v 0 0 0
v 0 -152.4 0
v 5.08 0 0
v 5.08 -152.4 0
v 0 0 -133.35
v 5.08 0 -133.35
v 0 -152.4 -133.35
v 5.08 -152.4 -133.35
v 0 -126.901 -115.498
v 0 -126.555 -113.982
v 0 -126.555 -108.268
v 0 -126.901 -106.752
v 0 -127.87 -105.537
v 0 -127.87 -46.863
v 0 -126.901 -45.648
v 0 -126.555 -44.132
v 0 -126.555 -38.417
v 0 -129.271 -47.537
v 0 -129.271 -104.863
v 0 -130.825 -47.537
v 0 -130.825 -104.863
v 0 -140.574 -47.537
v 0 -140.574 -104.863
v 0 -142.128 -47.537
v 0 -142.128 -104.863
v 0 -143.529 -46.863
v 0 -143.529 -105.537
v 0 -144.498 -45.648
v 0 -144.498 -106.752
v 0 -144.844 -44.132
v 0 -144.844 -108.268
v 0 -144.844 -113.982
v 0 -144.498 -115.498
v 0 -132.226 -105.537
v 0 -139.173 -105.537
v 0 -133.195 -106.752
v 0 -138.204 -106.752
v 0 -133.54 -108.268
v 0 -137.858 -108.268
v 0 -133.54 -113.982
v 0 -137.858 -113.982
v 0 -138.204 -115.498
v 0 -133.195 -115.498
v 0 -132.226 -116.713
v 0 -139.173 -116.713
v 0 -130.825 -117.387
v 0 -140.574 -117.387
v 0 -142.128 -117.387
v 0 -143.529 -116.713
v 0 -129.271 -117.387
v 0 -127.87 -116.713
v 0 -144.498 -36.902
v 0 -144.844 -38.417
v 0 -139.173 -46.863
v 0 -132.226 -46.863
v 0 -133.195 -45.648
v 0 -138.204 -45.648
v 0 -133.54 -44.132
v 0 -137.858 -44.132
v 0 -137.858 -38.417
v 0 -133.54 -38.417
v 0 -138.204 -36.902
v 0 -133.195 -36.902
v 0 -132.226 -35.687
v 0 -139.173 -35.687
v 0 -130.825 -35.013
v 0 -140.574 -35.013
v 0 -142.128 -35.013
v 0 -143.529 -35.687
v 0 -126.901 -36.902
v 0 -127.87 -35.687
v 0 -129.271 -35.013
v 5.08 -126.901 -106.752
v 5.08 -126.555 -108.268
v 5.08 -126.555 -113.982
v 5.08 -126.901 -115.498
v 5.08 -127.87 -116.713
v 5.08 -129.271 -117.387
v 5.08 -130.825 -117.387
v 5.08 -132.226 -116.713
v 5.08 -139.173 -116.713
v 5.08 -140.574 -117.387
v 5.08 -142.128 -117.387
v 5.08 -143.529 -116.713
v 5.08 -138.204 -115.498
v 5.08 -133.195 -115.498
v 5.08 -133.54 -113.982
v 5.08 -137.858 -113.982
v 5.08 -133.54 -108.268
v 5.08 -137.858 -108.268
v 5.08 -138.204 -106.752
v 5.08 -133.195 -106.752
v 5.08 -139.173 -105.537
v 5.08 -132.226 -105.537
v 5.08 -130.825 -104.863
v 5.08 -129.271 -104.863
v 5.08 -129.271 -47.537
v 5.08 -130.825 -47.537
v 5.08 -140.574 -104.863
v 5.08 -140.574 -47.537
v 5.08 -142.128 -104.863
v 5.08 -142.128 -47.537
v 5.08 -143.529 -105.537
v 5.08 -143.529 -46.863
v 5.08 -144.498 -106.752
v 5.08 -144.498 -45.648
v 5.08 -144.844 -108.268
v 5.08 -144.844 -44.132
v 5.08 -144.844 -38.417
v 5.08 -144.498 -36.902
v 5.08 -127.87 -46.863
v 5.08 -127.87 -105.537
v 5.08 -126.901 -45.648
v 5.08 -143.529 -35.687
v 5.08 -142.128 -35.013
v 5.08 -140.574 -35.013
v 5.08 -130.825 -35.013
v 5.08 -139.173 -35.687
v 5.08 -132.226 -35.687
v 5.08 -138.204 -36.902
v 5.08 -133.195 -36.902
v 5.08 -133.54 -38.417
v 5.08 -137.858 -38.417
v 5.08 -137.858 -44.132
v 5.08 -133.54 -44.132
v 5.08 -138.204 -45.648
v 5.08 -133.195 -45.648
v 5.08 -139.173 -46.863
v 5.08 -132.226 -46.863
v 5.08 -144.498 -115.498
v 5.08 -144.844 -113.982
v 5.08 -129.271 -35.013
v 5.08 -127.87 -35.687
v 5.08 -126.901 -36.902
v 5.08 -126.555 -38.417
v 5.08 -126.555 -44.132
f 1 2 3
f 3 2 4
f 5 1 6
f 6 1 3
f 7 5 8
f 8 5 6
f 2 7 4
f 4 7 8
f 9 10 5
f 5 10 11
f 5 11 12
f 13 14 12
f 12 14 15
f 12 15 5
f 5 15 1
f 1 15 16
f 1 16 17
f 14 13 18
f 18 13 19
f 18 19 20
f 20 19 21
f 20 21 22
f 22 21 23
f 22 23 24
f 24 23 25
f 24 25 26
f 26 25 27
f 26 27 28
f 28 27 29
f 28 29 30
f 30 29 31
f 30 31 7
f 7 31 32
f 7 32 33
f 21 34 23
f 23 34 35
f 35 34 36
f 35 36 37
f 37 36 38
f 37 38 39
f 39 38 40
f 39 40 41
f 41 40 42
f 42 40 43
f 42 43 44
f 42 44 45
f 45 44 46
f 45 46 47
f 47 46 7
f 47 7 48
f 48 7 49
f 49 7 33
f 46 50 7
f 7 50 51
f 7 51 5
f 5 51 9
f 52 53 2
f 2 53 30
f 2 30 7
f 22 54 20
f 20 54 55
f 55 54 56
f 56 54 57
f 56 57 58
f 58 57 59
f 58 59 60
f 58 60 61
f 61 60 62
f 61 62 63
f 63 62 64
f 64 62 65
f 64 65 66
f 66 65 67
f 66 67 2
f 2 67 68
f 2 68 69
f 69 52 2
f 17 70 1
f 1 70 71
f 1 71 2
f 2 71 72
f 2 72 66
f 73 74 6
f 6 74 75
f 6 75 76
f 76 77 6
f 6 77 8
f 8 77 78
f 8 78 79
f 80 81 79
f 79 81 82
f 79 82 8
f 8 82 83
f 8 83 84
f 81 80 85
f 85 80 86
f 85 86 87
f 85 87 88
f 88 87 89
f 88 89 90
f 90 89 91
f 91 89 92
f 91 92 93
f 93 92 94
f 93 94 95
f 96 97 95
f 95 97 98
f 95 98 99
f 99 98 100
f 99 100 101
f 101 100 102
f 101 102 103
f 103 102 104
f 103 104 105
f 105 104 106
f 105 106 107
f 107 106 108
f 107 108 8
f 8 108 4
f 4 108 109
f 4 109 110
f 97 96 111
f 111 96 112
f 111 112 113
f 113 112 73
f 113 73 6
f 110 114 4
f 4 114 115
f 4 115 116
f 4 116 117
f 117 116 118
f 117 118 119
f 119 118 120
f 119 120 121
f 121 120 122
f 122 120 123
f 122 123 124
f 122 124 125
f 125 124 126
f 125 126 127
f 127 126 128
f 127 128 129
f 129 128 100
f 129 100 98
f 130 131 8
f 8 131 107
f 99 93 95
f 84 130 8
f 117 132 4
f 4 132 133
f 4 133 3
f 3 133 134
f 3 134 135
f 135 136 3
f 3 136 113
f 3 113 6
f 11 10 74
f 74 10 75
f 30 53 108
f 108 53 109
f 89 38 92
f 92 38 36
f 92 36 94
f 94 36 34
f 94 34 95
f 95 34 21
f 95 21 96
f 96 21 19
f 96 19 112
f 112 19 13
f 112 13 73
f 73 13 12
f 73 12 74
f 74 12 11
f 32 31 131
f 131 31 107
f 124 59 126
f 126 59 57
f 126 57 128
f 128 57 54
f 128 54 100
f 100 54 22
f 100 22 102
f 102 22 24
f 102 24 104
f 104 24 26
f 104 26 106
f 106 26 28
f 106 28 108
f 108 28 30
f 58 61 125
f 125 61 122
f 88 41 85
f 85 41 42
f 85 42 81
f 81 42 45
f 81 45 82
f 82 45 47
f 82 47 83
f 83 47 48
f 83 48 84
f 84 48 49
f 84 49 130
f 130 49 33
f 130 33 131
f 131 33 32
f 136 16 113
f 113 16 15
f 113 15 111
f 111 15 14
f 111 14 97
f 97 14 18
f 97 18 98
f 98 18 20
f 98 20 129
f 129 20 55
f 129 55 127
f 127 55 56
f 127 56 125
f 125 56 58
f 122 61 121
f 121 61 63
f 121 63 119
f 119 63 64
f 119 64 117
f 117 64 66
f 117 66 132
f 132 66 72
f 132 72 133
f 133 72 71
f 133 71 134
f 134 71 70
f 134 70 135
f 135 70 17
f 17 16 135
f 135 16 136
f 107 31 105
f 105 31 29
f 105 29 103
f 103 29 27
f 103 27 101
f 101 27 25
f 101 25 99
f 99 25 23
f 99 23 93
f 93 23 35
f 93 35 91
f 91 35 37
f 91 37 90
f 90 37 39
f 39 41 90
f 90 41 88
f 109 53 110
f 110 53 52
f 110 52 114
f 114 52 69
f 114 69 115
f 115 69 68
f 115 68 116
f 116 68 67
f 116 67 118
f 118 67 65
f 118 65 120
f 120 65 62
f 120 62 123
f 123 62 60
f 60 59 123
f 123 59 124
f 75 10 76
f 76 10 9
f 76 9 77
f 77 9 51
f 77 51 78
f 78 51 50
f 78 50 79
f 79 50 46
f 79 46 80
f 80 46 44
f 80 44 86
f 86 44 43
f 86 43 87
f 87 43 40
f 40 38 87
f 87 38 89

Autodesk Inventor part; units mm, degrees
ref_plane "YZ Plane" through (0, 0, 0) normal (1, 0, 0) x (0, 1, 0)
ref_plane "XZ Plane" through (0, 0, 0) normal (0, 1, 0) x (-1, 0, 0)
ref_plane "XY Plane" through (0, 0, 0) normal (0, 0, 1) x (1, 0, 0)
sketch "Sketch1" plane through (0, 0, 0) normal (0, 0, 1) x (1, 0, 0)
  point P0 (0, 0)
sketch "Sketch2" plane through (0, 0, 0) normal (1, 0, 0) x (0, 1, 0)
  line L0 (0, 0) -> (-152.4, 0)
  line L1 (-152.4, 0) -> (-152.4, -133.35)
  line L2 (-152.4, -133.35) -> (0, -133.35)
  line L3 (0, -133.35) -> (0, 0)
  dimension "d0" = 152.4
  dimension "d1" = 133.35
extrude "Extrusion1" add sketch "Sketch2" along normal blind 5.08
sketch "Sketch6" plane through (5.08, 0, 0) normal (1, 0, 0) x (0, 0, -1)
  line L0 (0, -152.4) -> (133.35, -152.4) projected
  line L1 (133.35, -152.4) -> (133.35, 0) projected
  line L2 (0, 0) -> (0, -152.4) projected
  line L3 (41.275, -130.048) -> (47.625, -130.048)
  line L4 (47.625, -130.048) -> (41.275, -130.048)
  line L5 (41.275, -130.048) -> (34.925, -130.048)
  line L6 (34.925, -130.048) -> (47.625, -130.048) construction
  line L7 (38.4175, -133.5405) -> (44.1325, -133.5405)
  line L8 (44.1325, -126.5555) -> (38.4175, -126.5555)
  arc A0 (38.4175, -126.5555) -> (38.4175, -133.5405) centre (38.4175, -130.048) ccw
  arc A1 (44.1325, -133.5405) -> (44.1325, -126.5555) centre (44.1325, -130.048) ccw
  line L9 (111.125, -130.048) -> (117.475, -130.048)
  line L10 (117.475, -130.048) -> (111.125, -130.048)
  line L11 (111.125, -130.048) -> (104.775, -130.048)
  line L12 (104.775, -130.048) -> (117.475, -130.048) construction
  line L13 (108.2675, -133.5405) -> (113.9825, -133.5405)
  line L14 (113.9825, -126.5555) -> (108.2675, -126.5555)
  arc A2 (108.2675, -126.5555) -> (108.2675, -133.5405) centre (108.2675, -130.048) ccw
  arc A3 (113.9825, -133.5405) -> (113.9825, -126.5555) centre (113.9825, -130.048) ccw
  line L15 (41.275, -141.351) -> (47.625, -141.351)
  line L16 (47.625, -141.351) -> (41.275, -141.351)
  line L17 (41.275, -141.351) -> (34.925, -141.351)
  line L18 (34.925, -141.351) -> (47.625, -141.351) construction
  line L19 (38.4175, -144.8435) -> (44.1325, -144.8435)
  line L20 (44.1325, -137.8585) -> (38.4175, -137.8585)
  arc A4 (38.4175, -137.8585) -> (38.4175, -144.8435) centre (38.4175, -141.351) ccw
  arc A5 (44.1325, -144.8435) -> (44.1325, -137.8585) centre (44.1325, -141.351) ccw
  line L21 (111.125, -141.351) -> (117.475, -141.351)
  line L22 (111.125, -141.351) -> (104.775, -141.351)
  line L23 (104.775, -141.351) -> (117.475, -141.351) construction
  line L24 (108.2675, -144.8435) -> (113.9825, -144.8435)
  line L25 (113.9825, -137.8585) -> (108.2675, -137.8585)
  arc A6 (108.2675, -137.8585) -> (108.2675, -144.8435) centre (108.2675, -141.351) ccw
  arc A7 (113.9825, -144.8435) -> (113.9825, -137.8585) centre (113.9825, -141.351) ccw
  dimension "d28" = 6.35
  dimension "d30" = 6.985
  dimension "d31" = 6.35
  dimension "d32" = 6.35
  dimension "d33" = 6.985
  dimension "d34" = 6.35
  dimension "d35" = 6.35
  dimension "d36" = 6.985
  dimension "d37" = 6.35
  dimension "d38" = 6.35
  dimension "d39" = 6.985
extrude "Extrusion5" cut sketch "Sketch6" against normal blind 25.4
properties part number "HalfFrontWall"
